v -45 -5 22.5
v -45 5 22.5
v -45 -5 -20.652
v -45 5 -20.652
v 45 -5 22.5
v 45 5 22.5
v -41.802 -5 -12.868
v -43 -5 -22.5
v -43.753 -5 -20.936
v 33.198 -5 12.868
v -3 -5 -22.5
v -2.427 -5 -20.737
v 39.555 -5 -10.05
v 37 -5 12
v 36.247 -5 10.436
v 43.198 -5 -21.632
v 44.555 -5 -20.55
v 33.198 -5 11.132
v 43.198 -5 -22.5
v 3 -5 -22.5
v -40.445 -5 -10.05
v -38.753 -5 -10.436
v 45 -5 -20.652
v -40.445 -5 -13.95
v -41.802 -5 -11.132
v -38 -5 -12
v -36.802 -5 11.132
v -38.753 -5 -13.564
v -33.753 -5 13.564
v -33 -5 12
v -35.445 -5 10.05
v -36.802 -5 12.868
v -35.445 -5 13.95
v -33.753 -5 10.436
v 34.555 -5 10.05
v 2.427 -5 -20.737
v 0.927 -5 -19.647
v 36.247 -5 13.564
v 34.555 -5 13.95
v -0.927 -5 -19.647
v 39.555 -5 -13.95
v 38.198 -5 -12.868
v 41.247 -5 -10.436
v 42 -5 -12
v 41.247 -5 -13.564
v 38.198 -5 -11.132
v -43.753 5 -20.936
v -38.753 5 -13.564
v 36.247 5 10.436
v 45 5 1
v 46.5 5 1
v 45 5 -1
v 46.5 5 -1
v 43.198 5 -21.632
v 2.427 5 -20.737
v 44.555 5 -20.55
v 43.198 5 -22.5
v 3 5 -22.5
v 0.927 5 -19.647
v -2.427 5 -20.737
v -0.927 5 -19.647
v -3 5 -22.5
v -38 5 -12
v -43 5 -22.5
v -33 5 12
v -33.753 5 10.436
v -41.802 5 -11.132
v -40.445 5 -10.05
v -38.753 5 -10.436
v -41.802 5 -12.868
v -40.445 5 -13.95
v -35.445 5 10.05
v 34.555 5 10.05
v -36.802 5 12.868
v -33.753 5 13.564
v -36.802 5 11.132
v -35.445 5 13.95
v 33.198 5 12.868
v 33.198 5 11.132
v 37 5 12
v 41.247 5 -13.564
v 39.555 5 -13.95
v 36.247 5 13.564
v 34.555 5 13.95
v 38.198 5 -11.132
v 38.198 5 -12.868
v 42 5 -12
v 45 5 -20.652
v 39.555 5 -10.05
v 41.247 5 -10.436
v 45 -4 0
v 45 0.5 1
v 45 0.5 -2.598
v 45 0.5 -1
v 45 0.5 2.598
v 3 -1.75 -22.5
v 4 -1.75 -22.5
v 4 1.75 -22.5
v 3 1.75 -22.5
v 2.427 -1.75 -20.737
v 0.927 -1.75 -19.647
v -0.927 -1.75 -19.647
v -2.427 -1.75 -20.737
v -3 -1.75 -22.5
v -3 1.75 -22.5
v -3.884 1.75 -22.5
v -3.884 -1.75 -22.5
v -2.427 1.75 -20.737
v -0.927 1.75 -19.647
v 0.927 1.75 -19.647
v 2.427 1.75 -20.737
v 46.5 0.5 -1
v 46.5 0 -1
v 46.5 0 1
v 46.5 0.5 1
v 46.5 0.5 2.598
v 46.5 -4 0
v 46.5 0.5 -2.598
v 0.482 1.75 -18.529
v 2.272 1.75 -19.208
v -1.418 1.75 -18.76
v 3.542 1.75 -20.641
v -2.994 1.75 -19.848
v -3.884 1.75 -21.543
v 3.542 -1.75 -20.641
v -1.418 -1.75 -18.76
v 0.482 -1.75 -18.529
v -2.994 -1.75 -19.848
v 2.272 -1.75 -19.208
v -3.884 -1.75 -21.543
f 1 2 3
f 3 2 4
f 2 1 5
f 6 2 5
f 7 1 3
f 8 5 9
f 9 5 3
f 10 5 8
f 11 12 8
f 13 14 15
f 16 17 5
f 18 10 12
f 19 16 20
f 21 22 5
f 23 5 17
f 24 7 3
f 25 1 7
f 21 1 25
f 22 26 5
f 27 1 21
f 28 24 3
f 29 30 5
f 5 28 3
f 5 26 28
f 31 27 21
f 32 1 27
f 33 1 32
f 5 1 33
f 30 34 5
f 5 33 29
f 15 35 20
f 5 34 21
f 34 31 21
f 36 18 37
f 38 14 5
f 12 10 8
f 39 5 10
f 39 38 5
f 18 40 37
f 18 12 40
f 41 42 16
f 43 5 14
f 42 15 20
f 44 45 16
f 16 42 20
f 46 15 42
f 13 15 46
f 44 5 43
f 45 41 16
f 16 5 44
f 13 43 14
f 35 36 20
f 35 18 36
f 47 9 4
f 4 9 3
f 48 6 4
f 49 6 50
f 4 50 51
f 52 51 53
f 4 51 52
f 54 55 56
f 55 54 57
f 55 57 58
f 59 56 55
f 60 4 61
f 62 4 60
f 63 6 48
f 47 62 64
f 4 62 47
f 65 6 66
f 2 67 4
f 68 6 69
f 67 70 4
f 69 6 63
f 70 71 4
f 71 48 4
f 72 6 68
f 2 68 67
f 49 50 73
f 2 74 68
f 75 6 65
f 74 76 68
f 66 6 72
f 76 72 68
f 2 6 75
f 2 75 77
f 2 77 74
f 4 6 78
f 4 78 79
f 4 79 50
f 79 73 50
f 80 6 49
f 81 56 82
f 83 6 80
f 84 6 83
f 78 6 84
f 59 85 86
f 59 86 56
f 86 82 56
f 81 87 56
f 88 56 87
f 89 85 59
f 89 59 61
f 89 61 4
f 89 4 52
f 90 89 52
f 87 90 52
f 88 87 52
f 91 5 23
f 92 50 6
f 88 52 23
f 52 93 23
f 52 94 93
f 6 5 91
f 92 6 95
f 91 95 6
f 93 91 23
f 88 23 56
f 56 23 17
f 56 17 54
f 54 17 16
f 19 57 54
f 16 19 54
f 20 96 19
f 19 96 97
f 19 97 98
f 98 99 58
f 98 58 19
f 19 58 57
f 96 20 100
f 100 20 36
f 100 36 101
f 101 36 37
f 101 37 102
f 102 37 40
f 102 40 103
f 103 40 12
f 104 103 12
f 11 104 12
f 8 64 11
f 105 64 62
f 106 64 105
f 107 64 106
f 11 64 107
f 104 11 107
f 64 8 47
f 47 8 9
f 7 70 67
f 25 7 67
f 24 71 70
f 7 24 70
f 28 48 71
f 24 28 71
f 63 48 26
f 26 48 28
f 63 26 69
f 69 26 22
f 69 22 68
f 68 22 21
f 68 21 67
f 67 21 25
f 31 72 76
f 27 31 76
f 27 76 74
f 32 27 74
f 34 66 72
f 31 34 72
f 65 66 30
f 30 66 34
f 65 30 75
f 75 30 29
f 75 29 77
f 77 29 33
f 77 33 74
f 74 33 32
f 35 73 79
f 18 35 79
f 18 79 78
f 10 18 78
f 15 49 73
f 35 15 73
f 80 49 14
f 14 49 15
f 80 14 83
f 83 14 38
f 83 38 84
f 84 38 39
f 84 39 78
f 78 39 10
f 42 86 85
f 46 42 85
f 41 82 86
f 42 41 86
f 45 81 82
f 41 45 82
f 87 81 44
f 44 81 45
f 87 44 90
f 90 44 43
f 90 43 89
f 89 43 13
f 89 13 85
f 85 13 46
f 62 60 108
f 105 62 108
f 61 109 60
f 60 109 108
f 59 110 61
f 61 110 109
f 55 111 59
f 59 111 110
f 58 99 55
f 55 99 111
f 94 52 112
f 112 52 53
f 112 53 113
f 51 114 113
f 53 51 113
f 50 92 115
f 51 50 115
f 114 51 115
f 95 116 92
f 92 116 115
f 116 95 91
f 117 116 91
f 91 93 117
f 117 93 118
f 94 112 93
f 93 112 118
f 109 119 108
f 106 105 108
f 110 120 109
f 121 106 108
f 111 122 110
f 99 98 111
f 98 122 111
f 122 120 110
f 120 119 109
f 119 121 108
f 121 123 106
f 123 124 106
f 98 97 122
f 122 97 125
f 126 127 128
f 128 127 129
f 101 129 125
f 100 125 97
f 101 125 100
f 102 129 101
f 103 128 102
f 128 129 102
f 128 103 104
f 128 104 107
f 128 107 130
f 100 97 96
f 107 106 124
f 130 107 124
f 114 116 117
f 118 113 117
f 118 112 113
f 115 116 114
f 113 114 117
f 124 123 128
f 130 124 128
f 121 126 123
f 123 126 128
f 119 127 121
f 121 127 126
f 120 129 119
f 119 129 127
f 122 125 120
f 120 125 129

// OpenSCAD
// file: filterMount_screwHoles.scad
module upperScrewHoles(){
	//upperMiddleHalf
	translate([40,12,0]) cylinder(h=30,r=2,center=true);
	translate([-40,12,0]) cylinder(h=30,r=2,center=true);
	//upperHalf
	translate([35,-12,0]) cylinder(h=30,r=2,center=true);
	translate([-35,-12,0]) cylinder(h=30,r=2,center=true);
}

module lowerScrewHoles(){
	//lowerMiddleHalf
	translate([40,-12,0]) cylinder(h=30,r=2,center=true);
	translate([-40,-12,0]) cylinder(h=30,r=2,center=true);
	//bottomwHalf
	translate([35,12,0]) cylinder(h=30,r=2,center=true);
	translate([-35,12,0]) cylinder(h=30,r=2,center=true);
}

upperScrewHoles();
lowerScrewHoles();
// file: arrow.scad
module arrow(){
	//arrowBody
	translate([0,-1,0]) color([0,1,1]) cube(size=[2.5,2,5]);
	//arrowHead
	translate([0,0,-1]) color([0,1,1]) rotate([0,90,0]) cylinder(h=2.5,r=3,$fn=3);
}

arrow();
// main file
use <arrow.scad>
use <filterMount_screwHoles.scad>

module 550LP_filterMountTop(){
	//arrow
	translate([44,0,0]){
		rotate([0,0,0]){
			arrow();
		}
	}
	//550LP Filter Mount Top
	difference(){
		color([.2,.1,.6]) cube(size=[90,45,10],center=true);
		//filterBody
		translate([0,22.5,0]) cylinder(h=3.5,r=4,center=true);
		//filterHole
		translate([0,22.5,0]) cylinder(h=30,r=3,center=true);
		//screwHoles
		upperScrewHoles();
		//cornerNotch
		translate([45,22.5,0]) cylinder(h=30,r=2,center=true);
		translate([-45,22.5,0]) cylinder(h=30,r=2,center=true);
	}
}

//550LP_filterMount
rotate([-90,0,0]) {
	translate([0,0,0]){
		550LP_filterMountTop();
	}
}
